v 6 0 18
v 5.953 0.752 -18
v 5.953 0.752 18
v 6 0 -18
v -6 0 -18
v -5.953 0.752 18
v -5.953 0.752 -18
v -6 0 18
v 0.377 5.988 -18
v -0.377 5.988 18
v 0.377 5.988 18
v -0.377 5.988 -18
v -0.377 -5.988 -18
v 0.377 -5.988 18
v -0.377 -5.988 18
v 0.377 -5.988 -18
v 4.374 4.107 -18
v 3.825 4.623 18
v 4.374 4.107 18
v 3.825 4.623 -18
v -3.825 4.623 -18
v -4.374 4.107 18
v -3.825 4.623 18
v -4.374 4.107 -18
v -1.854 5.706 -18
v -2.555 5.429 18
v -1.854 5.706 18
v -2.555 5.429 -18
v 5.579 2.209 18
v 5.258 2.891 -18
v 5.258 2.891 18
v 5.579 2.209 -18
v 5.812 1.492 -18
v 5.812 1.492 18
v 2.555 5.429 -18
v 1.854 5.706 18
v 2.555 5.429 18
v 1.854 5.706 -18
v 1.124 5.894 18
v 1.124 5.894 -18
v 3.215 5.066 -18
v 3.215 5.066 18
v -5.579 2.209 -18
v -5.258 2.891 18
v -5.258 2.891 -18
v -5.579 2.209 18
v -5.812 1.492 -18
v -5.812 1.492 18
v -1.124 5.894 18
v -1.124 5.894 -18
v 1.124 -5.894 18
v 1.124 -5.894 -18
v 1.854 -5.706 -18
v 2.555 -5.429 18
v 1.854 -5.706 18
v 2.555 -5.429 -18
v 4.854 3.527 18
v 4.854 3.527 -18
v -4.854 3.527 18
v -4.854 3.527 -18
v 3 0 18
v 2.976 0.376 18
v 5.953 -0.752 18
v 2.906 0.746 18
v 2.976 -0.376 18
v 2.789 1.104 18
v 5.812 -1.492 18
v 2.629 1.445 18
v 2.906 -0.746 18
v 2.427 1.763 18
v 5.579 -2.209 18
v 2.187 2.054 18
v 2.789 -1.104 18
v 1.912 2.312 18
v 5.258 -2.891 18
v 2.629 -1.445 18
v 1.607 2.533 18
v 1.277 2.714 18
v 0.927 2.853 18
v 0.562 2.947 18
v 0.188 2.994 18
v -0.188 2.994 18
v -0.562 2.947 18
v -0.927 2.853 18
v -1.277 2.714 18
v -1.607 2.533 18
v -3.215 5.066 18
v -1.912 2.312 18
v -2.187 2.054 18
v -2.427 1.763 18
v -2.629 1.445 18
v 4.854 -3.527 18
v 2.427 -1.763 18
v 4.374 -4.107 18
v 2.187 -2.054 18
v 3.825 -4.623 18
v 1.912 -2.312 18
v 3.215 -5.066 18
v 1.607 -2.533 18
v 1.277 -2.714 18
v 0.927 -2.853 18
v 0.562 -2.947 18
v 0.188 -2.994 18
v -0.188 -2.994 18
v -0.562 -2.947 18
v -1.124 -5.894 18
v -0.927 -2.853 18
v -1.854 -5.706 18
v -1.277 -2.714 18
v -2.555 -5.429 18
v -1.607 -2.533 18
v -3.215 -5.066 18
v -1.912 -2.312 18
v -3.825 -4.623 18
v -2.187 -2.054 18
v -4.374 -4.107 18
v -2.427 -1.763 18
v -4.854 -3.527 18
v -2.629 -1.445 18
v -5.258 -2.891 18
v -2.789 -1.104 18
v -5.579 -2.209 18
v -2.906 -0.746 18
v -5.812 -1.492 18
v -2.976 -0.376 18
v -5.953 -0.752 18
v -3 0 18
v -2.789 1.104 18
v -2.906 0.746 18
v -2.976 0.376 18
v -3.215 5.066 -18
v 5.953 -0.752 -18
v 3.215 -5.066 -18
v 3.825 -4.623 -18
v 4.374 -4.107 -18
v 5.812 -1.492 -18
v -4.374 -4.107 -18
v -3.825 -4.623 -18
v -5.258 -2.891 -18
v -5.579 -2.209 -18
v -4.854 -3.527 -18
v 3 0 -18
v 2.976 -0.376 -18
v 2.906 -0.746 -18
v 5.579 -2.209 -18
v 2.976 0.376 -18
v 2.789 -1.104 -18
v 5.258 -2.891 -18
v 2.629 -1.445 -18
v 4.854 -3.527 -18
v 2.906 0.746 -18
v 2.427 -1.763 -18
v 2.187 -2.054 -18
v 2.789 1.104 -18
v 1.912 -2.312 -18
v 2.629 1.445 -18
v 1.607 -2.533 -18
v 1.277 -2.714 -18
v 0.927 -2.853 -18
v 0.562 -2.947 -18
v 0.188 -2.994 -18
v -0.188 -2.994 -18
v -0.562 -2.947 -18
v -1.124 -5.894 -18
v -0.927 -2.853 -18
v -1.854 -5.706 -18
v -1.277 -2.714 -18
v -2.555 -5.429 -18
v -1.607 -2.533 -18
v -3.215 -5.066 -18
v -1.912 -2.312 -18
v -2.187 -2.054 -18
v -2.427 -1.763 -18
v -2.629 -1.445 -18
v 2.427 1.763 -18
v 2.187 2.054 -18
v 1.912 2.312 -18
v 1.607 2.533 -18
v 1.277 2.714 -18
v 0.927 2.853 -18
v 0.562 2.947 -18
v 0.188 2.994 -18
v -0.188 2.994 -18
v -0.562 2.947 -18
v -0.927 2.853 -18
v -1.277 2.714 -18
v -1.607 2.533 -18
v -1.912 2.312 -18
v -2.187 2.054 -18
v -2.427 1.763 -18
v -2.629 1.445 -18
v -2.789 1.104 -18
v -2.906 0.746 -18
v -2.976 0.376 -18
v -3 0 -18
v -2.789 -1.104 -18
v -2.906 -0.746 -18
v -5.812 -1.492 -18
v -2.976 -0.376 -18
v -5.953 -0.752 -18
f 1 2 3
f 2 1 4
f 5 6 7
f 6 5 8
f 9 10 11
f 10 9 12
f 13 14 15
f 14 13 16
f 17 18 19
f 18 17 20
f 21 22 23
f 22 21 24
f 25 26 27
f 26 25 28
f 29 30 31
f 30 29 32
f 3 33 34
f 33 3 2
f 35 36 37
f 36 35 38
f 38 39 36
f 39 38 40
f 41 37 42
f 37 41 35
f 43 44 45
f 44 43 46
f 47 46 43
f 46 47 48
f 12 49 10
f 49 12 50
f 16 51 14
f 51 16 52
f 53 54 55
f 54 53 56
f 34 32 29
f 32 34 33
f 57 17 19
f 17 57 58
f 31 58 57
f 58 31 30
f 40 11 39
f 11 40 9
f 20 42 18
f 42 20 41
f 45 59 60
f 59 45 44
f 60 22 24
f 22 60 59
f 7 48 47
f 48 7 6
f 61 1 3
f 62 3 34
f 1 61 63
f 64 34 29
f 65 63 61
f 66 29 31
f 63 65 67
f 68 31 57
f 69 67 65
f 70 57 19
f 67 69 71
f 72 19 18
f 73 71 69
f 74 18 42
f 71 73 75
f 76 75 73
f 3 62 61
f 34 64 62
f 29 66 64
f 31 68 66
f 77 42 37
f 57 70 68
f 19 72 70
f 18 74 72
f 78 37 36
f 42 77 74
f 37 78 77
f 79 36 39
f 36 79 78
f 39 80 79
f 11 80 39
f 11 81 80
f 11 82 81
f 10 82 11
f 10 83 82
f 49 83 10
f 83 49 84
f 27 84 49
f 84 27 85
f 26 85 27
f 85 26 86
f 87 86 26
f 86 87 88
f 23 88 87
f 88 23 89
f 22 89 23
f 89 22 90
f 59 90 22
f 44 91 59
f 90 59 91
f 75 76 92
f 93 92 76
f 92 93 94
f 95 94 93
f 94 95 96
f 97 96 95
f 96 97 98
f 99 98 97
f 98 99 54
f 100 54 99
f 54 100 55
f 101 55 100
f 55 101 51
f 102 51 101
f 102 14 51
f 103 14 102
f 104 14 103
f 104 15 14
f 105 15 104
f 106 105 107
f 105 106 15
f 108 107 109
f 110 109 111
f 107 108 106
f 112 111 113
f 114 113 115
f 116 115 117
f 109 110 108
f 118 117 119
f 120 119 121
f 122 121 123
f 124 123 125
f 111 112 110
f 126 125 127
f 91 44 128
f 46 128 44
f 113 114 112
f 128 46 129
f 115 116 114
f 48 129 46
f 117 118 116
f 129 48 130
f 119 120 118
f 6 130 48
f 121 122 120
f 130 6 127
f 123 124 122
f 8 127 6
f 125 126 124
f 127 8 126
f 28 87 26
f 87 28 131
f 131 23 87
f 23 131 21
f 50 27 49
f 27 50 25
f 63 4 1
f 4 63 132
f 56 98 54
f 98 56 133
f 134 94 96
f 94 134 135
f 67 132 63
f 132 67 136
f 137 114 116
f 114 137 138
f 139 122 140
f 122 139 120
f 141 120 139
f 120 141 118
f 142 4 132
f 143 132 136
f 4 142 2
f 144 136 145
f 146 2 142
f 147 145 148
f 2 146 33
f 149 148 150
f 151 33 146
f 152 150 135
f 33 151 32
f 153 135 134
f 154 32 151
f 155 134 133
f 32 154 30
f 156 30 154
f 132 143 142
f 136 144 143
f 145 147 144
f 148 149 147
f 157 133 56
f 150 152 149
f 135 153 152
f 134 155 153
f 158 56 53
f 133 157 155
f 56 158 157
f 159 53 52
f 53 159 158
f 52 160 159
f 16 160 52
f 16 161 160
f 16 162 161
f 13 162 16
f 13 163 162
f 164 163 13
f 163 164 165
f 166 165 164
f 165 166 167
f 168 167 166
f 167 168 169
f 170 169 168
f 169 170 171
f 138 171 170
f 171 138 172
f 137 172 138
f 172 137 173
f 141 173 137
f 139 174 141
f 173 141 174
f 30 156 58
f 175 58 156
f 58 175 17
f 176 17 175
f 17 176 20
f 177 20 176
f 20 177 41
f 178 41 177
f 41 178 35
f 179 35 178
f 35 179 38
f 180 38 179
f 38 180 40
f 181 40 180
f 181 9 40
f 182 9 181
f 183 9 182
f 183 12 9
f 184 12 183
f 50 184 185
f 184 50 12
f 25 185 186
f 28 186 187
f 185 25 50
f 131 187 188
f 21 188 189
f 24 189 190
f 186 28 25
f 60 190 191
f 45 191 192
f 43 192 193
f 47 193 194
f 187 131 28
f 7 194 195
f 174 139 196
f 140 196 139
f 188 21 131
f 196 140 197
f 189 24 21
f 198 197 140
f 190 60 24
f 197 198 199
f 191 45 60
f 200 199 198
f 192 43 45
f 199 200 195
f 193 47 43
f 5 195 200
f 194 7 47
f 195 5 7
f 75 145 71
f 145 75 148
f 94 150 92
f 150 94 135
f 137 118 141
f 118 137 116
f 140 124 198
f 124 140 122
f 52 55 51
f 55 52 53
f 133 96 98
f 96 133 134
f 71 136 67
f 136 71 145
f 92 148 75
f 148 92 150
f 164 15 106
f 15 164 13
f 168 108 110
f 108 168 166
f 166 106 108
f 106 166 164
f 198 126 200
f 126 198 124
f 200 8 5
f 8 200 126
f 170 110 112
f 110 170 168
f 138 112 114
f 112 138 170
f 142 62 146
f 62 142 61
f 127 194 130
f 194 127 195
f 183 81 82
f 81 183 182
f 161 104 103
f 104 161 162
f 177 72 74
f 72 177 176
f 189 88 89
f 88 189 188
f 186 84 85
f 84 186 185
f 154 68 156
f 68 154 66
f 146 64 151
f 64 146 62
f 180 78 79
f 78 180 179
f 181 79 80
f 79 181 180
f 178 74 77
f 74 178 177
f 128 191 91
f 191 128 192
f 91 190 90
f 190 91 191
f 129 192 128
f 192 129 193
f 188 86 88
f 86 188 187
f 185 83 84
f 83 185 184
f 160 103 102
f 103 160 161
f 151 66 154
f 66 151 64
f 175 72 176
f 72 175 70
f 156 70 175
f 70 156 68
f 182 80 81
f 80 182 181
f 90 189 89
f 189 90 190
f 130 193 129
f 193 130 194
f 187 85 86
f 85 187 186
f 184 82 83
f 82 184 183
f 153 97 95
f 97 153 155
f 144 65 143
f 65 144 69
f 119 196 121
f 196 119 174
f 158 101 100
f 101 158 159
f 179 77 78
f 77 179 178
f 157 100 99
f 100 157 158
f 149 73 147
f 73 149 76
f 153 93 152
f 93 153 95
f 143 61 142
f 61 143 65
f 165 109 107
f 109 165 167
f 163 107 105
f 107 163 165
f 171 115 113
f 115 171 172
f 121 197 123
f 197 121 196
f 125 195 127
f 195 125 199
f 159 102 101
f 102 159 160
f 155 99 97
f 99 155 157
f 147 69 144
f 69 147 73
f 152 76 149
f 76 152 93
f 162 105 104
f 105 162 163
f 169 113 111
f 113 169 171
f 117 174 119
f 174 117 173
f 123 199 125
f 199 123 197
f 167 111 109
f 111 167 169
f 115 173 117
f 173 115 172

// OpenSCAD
$fn = 50;


difference() {
	union() {
		translate(v = [0, 0, -18.0000000000]) {
			cylinder(h = 36, r = 6.0000000000);
		}
	}
	union() {
		translate(v = [0, 0, -100.0000000000]) {
			cylinder(h = 200, r = 3);
		}
	}
}
